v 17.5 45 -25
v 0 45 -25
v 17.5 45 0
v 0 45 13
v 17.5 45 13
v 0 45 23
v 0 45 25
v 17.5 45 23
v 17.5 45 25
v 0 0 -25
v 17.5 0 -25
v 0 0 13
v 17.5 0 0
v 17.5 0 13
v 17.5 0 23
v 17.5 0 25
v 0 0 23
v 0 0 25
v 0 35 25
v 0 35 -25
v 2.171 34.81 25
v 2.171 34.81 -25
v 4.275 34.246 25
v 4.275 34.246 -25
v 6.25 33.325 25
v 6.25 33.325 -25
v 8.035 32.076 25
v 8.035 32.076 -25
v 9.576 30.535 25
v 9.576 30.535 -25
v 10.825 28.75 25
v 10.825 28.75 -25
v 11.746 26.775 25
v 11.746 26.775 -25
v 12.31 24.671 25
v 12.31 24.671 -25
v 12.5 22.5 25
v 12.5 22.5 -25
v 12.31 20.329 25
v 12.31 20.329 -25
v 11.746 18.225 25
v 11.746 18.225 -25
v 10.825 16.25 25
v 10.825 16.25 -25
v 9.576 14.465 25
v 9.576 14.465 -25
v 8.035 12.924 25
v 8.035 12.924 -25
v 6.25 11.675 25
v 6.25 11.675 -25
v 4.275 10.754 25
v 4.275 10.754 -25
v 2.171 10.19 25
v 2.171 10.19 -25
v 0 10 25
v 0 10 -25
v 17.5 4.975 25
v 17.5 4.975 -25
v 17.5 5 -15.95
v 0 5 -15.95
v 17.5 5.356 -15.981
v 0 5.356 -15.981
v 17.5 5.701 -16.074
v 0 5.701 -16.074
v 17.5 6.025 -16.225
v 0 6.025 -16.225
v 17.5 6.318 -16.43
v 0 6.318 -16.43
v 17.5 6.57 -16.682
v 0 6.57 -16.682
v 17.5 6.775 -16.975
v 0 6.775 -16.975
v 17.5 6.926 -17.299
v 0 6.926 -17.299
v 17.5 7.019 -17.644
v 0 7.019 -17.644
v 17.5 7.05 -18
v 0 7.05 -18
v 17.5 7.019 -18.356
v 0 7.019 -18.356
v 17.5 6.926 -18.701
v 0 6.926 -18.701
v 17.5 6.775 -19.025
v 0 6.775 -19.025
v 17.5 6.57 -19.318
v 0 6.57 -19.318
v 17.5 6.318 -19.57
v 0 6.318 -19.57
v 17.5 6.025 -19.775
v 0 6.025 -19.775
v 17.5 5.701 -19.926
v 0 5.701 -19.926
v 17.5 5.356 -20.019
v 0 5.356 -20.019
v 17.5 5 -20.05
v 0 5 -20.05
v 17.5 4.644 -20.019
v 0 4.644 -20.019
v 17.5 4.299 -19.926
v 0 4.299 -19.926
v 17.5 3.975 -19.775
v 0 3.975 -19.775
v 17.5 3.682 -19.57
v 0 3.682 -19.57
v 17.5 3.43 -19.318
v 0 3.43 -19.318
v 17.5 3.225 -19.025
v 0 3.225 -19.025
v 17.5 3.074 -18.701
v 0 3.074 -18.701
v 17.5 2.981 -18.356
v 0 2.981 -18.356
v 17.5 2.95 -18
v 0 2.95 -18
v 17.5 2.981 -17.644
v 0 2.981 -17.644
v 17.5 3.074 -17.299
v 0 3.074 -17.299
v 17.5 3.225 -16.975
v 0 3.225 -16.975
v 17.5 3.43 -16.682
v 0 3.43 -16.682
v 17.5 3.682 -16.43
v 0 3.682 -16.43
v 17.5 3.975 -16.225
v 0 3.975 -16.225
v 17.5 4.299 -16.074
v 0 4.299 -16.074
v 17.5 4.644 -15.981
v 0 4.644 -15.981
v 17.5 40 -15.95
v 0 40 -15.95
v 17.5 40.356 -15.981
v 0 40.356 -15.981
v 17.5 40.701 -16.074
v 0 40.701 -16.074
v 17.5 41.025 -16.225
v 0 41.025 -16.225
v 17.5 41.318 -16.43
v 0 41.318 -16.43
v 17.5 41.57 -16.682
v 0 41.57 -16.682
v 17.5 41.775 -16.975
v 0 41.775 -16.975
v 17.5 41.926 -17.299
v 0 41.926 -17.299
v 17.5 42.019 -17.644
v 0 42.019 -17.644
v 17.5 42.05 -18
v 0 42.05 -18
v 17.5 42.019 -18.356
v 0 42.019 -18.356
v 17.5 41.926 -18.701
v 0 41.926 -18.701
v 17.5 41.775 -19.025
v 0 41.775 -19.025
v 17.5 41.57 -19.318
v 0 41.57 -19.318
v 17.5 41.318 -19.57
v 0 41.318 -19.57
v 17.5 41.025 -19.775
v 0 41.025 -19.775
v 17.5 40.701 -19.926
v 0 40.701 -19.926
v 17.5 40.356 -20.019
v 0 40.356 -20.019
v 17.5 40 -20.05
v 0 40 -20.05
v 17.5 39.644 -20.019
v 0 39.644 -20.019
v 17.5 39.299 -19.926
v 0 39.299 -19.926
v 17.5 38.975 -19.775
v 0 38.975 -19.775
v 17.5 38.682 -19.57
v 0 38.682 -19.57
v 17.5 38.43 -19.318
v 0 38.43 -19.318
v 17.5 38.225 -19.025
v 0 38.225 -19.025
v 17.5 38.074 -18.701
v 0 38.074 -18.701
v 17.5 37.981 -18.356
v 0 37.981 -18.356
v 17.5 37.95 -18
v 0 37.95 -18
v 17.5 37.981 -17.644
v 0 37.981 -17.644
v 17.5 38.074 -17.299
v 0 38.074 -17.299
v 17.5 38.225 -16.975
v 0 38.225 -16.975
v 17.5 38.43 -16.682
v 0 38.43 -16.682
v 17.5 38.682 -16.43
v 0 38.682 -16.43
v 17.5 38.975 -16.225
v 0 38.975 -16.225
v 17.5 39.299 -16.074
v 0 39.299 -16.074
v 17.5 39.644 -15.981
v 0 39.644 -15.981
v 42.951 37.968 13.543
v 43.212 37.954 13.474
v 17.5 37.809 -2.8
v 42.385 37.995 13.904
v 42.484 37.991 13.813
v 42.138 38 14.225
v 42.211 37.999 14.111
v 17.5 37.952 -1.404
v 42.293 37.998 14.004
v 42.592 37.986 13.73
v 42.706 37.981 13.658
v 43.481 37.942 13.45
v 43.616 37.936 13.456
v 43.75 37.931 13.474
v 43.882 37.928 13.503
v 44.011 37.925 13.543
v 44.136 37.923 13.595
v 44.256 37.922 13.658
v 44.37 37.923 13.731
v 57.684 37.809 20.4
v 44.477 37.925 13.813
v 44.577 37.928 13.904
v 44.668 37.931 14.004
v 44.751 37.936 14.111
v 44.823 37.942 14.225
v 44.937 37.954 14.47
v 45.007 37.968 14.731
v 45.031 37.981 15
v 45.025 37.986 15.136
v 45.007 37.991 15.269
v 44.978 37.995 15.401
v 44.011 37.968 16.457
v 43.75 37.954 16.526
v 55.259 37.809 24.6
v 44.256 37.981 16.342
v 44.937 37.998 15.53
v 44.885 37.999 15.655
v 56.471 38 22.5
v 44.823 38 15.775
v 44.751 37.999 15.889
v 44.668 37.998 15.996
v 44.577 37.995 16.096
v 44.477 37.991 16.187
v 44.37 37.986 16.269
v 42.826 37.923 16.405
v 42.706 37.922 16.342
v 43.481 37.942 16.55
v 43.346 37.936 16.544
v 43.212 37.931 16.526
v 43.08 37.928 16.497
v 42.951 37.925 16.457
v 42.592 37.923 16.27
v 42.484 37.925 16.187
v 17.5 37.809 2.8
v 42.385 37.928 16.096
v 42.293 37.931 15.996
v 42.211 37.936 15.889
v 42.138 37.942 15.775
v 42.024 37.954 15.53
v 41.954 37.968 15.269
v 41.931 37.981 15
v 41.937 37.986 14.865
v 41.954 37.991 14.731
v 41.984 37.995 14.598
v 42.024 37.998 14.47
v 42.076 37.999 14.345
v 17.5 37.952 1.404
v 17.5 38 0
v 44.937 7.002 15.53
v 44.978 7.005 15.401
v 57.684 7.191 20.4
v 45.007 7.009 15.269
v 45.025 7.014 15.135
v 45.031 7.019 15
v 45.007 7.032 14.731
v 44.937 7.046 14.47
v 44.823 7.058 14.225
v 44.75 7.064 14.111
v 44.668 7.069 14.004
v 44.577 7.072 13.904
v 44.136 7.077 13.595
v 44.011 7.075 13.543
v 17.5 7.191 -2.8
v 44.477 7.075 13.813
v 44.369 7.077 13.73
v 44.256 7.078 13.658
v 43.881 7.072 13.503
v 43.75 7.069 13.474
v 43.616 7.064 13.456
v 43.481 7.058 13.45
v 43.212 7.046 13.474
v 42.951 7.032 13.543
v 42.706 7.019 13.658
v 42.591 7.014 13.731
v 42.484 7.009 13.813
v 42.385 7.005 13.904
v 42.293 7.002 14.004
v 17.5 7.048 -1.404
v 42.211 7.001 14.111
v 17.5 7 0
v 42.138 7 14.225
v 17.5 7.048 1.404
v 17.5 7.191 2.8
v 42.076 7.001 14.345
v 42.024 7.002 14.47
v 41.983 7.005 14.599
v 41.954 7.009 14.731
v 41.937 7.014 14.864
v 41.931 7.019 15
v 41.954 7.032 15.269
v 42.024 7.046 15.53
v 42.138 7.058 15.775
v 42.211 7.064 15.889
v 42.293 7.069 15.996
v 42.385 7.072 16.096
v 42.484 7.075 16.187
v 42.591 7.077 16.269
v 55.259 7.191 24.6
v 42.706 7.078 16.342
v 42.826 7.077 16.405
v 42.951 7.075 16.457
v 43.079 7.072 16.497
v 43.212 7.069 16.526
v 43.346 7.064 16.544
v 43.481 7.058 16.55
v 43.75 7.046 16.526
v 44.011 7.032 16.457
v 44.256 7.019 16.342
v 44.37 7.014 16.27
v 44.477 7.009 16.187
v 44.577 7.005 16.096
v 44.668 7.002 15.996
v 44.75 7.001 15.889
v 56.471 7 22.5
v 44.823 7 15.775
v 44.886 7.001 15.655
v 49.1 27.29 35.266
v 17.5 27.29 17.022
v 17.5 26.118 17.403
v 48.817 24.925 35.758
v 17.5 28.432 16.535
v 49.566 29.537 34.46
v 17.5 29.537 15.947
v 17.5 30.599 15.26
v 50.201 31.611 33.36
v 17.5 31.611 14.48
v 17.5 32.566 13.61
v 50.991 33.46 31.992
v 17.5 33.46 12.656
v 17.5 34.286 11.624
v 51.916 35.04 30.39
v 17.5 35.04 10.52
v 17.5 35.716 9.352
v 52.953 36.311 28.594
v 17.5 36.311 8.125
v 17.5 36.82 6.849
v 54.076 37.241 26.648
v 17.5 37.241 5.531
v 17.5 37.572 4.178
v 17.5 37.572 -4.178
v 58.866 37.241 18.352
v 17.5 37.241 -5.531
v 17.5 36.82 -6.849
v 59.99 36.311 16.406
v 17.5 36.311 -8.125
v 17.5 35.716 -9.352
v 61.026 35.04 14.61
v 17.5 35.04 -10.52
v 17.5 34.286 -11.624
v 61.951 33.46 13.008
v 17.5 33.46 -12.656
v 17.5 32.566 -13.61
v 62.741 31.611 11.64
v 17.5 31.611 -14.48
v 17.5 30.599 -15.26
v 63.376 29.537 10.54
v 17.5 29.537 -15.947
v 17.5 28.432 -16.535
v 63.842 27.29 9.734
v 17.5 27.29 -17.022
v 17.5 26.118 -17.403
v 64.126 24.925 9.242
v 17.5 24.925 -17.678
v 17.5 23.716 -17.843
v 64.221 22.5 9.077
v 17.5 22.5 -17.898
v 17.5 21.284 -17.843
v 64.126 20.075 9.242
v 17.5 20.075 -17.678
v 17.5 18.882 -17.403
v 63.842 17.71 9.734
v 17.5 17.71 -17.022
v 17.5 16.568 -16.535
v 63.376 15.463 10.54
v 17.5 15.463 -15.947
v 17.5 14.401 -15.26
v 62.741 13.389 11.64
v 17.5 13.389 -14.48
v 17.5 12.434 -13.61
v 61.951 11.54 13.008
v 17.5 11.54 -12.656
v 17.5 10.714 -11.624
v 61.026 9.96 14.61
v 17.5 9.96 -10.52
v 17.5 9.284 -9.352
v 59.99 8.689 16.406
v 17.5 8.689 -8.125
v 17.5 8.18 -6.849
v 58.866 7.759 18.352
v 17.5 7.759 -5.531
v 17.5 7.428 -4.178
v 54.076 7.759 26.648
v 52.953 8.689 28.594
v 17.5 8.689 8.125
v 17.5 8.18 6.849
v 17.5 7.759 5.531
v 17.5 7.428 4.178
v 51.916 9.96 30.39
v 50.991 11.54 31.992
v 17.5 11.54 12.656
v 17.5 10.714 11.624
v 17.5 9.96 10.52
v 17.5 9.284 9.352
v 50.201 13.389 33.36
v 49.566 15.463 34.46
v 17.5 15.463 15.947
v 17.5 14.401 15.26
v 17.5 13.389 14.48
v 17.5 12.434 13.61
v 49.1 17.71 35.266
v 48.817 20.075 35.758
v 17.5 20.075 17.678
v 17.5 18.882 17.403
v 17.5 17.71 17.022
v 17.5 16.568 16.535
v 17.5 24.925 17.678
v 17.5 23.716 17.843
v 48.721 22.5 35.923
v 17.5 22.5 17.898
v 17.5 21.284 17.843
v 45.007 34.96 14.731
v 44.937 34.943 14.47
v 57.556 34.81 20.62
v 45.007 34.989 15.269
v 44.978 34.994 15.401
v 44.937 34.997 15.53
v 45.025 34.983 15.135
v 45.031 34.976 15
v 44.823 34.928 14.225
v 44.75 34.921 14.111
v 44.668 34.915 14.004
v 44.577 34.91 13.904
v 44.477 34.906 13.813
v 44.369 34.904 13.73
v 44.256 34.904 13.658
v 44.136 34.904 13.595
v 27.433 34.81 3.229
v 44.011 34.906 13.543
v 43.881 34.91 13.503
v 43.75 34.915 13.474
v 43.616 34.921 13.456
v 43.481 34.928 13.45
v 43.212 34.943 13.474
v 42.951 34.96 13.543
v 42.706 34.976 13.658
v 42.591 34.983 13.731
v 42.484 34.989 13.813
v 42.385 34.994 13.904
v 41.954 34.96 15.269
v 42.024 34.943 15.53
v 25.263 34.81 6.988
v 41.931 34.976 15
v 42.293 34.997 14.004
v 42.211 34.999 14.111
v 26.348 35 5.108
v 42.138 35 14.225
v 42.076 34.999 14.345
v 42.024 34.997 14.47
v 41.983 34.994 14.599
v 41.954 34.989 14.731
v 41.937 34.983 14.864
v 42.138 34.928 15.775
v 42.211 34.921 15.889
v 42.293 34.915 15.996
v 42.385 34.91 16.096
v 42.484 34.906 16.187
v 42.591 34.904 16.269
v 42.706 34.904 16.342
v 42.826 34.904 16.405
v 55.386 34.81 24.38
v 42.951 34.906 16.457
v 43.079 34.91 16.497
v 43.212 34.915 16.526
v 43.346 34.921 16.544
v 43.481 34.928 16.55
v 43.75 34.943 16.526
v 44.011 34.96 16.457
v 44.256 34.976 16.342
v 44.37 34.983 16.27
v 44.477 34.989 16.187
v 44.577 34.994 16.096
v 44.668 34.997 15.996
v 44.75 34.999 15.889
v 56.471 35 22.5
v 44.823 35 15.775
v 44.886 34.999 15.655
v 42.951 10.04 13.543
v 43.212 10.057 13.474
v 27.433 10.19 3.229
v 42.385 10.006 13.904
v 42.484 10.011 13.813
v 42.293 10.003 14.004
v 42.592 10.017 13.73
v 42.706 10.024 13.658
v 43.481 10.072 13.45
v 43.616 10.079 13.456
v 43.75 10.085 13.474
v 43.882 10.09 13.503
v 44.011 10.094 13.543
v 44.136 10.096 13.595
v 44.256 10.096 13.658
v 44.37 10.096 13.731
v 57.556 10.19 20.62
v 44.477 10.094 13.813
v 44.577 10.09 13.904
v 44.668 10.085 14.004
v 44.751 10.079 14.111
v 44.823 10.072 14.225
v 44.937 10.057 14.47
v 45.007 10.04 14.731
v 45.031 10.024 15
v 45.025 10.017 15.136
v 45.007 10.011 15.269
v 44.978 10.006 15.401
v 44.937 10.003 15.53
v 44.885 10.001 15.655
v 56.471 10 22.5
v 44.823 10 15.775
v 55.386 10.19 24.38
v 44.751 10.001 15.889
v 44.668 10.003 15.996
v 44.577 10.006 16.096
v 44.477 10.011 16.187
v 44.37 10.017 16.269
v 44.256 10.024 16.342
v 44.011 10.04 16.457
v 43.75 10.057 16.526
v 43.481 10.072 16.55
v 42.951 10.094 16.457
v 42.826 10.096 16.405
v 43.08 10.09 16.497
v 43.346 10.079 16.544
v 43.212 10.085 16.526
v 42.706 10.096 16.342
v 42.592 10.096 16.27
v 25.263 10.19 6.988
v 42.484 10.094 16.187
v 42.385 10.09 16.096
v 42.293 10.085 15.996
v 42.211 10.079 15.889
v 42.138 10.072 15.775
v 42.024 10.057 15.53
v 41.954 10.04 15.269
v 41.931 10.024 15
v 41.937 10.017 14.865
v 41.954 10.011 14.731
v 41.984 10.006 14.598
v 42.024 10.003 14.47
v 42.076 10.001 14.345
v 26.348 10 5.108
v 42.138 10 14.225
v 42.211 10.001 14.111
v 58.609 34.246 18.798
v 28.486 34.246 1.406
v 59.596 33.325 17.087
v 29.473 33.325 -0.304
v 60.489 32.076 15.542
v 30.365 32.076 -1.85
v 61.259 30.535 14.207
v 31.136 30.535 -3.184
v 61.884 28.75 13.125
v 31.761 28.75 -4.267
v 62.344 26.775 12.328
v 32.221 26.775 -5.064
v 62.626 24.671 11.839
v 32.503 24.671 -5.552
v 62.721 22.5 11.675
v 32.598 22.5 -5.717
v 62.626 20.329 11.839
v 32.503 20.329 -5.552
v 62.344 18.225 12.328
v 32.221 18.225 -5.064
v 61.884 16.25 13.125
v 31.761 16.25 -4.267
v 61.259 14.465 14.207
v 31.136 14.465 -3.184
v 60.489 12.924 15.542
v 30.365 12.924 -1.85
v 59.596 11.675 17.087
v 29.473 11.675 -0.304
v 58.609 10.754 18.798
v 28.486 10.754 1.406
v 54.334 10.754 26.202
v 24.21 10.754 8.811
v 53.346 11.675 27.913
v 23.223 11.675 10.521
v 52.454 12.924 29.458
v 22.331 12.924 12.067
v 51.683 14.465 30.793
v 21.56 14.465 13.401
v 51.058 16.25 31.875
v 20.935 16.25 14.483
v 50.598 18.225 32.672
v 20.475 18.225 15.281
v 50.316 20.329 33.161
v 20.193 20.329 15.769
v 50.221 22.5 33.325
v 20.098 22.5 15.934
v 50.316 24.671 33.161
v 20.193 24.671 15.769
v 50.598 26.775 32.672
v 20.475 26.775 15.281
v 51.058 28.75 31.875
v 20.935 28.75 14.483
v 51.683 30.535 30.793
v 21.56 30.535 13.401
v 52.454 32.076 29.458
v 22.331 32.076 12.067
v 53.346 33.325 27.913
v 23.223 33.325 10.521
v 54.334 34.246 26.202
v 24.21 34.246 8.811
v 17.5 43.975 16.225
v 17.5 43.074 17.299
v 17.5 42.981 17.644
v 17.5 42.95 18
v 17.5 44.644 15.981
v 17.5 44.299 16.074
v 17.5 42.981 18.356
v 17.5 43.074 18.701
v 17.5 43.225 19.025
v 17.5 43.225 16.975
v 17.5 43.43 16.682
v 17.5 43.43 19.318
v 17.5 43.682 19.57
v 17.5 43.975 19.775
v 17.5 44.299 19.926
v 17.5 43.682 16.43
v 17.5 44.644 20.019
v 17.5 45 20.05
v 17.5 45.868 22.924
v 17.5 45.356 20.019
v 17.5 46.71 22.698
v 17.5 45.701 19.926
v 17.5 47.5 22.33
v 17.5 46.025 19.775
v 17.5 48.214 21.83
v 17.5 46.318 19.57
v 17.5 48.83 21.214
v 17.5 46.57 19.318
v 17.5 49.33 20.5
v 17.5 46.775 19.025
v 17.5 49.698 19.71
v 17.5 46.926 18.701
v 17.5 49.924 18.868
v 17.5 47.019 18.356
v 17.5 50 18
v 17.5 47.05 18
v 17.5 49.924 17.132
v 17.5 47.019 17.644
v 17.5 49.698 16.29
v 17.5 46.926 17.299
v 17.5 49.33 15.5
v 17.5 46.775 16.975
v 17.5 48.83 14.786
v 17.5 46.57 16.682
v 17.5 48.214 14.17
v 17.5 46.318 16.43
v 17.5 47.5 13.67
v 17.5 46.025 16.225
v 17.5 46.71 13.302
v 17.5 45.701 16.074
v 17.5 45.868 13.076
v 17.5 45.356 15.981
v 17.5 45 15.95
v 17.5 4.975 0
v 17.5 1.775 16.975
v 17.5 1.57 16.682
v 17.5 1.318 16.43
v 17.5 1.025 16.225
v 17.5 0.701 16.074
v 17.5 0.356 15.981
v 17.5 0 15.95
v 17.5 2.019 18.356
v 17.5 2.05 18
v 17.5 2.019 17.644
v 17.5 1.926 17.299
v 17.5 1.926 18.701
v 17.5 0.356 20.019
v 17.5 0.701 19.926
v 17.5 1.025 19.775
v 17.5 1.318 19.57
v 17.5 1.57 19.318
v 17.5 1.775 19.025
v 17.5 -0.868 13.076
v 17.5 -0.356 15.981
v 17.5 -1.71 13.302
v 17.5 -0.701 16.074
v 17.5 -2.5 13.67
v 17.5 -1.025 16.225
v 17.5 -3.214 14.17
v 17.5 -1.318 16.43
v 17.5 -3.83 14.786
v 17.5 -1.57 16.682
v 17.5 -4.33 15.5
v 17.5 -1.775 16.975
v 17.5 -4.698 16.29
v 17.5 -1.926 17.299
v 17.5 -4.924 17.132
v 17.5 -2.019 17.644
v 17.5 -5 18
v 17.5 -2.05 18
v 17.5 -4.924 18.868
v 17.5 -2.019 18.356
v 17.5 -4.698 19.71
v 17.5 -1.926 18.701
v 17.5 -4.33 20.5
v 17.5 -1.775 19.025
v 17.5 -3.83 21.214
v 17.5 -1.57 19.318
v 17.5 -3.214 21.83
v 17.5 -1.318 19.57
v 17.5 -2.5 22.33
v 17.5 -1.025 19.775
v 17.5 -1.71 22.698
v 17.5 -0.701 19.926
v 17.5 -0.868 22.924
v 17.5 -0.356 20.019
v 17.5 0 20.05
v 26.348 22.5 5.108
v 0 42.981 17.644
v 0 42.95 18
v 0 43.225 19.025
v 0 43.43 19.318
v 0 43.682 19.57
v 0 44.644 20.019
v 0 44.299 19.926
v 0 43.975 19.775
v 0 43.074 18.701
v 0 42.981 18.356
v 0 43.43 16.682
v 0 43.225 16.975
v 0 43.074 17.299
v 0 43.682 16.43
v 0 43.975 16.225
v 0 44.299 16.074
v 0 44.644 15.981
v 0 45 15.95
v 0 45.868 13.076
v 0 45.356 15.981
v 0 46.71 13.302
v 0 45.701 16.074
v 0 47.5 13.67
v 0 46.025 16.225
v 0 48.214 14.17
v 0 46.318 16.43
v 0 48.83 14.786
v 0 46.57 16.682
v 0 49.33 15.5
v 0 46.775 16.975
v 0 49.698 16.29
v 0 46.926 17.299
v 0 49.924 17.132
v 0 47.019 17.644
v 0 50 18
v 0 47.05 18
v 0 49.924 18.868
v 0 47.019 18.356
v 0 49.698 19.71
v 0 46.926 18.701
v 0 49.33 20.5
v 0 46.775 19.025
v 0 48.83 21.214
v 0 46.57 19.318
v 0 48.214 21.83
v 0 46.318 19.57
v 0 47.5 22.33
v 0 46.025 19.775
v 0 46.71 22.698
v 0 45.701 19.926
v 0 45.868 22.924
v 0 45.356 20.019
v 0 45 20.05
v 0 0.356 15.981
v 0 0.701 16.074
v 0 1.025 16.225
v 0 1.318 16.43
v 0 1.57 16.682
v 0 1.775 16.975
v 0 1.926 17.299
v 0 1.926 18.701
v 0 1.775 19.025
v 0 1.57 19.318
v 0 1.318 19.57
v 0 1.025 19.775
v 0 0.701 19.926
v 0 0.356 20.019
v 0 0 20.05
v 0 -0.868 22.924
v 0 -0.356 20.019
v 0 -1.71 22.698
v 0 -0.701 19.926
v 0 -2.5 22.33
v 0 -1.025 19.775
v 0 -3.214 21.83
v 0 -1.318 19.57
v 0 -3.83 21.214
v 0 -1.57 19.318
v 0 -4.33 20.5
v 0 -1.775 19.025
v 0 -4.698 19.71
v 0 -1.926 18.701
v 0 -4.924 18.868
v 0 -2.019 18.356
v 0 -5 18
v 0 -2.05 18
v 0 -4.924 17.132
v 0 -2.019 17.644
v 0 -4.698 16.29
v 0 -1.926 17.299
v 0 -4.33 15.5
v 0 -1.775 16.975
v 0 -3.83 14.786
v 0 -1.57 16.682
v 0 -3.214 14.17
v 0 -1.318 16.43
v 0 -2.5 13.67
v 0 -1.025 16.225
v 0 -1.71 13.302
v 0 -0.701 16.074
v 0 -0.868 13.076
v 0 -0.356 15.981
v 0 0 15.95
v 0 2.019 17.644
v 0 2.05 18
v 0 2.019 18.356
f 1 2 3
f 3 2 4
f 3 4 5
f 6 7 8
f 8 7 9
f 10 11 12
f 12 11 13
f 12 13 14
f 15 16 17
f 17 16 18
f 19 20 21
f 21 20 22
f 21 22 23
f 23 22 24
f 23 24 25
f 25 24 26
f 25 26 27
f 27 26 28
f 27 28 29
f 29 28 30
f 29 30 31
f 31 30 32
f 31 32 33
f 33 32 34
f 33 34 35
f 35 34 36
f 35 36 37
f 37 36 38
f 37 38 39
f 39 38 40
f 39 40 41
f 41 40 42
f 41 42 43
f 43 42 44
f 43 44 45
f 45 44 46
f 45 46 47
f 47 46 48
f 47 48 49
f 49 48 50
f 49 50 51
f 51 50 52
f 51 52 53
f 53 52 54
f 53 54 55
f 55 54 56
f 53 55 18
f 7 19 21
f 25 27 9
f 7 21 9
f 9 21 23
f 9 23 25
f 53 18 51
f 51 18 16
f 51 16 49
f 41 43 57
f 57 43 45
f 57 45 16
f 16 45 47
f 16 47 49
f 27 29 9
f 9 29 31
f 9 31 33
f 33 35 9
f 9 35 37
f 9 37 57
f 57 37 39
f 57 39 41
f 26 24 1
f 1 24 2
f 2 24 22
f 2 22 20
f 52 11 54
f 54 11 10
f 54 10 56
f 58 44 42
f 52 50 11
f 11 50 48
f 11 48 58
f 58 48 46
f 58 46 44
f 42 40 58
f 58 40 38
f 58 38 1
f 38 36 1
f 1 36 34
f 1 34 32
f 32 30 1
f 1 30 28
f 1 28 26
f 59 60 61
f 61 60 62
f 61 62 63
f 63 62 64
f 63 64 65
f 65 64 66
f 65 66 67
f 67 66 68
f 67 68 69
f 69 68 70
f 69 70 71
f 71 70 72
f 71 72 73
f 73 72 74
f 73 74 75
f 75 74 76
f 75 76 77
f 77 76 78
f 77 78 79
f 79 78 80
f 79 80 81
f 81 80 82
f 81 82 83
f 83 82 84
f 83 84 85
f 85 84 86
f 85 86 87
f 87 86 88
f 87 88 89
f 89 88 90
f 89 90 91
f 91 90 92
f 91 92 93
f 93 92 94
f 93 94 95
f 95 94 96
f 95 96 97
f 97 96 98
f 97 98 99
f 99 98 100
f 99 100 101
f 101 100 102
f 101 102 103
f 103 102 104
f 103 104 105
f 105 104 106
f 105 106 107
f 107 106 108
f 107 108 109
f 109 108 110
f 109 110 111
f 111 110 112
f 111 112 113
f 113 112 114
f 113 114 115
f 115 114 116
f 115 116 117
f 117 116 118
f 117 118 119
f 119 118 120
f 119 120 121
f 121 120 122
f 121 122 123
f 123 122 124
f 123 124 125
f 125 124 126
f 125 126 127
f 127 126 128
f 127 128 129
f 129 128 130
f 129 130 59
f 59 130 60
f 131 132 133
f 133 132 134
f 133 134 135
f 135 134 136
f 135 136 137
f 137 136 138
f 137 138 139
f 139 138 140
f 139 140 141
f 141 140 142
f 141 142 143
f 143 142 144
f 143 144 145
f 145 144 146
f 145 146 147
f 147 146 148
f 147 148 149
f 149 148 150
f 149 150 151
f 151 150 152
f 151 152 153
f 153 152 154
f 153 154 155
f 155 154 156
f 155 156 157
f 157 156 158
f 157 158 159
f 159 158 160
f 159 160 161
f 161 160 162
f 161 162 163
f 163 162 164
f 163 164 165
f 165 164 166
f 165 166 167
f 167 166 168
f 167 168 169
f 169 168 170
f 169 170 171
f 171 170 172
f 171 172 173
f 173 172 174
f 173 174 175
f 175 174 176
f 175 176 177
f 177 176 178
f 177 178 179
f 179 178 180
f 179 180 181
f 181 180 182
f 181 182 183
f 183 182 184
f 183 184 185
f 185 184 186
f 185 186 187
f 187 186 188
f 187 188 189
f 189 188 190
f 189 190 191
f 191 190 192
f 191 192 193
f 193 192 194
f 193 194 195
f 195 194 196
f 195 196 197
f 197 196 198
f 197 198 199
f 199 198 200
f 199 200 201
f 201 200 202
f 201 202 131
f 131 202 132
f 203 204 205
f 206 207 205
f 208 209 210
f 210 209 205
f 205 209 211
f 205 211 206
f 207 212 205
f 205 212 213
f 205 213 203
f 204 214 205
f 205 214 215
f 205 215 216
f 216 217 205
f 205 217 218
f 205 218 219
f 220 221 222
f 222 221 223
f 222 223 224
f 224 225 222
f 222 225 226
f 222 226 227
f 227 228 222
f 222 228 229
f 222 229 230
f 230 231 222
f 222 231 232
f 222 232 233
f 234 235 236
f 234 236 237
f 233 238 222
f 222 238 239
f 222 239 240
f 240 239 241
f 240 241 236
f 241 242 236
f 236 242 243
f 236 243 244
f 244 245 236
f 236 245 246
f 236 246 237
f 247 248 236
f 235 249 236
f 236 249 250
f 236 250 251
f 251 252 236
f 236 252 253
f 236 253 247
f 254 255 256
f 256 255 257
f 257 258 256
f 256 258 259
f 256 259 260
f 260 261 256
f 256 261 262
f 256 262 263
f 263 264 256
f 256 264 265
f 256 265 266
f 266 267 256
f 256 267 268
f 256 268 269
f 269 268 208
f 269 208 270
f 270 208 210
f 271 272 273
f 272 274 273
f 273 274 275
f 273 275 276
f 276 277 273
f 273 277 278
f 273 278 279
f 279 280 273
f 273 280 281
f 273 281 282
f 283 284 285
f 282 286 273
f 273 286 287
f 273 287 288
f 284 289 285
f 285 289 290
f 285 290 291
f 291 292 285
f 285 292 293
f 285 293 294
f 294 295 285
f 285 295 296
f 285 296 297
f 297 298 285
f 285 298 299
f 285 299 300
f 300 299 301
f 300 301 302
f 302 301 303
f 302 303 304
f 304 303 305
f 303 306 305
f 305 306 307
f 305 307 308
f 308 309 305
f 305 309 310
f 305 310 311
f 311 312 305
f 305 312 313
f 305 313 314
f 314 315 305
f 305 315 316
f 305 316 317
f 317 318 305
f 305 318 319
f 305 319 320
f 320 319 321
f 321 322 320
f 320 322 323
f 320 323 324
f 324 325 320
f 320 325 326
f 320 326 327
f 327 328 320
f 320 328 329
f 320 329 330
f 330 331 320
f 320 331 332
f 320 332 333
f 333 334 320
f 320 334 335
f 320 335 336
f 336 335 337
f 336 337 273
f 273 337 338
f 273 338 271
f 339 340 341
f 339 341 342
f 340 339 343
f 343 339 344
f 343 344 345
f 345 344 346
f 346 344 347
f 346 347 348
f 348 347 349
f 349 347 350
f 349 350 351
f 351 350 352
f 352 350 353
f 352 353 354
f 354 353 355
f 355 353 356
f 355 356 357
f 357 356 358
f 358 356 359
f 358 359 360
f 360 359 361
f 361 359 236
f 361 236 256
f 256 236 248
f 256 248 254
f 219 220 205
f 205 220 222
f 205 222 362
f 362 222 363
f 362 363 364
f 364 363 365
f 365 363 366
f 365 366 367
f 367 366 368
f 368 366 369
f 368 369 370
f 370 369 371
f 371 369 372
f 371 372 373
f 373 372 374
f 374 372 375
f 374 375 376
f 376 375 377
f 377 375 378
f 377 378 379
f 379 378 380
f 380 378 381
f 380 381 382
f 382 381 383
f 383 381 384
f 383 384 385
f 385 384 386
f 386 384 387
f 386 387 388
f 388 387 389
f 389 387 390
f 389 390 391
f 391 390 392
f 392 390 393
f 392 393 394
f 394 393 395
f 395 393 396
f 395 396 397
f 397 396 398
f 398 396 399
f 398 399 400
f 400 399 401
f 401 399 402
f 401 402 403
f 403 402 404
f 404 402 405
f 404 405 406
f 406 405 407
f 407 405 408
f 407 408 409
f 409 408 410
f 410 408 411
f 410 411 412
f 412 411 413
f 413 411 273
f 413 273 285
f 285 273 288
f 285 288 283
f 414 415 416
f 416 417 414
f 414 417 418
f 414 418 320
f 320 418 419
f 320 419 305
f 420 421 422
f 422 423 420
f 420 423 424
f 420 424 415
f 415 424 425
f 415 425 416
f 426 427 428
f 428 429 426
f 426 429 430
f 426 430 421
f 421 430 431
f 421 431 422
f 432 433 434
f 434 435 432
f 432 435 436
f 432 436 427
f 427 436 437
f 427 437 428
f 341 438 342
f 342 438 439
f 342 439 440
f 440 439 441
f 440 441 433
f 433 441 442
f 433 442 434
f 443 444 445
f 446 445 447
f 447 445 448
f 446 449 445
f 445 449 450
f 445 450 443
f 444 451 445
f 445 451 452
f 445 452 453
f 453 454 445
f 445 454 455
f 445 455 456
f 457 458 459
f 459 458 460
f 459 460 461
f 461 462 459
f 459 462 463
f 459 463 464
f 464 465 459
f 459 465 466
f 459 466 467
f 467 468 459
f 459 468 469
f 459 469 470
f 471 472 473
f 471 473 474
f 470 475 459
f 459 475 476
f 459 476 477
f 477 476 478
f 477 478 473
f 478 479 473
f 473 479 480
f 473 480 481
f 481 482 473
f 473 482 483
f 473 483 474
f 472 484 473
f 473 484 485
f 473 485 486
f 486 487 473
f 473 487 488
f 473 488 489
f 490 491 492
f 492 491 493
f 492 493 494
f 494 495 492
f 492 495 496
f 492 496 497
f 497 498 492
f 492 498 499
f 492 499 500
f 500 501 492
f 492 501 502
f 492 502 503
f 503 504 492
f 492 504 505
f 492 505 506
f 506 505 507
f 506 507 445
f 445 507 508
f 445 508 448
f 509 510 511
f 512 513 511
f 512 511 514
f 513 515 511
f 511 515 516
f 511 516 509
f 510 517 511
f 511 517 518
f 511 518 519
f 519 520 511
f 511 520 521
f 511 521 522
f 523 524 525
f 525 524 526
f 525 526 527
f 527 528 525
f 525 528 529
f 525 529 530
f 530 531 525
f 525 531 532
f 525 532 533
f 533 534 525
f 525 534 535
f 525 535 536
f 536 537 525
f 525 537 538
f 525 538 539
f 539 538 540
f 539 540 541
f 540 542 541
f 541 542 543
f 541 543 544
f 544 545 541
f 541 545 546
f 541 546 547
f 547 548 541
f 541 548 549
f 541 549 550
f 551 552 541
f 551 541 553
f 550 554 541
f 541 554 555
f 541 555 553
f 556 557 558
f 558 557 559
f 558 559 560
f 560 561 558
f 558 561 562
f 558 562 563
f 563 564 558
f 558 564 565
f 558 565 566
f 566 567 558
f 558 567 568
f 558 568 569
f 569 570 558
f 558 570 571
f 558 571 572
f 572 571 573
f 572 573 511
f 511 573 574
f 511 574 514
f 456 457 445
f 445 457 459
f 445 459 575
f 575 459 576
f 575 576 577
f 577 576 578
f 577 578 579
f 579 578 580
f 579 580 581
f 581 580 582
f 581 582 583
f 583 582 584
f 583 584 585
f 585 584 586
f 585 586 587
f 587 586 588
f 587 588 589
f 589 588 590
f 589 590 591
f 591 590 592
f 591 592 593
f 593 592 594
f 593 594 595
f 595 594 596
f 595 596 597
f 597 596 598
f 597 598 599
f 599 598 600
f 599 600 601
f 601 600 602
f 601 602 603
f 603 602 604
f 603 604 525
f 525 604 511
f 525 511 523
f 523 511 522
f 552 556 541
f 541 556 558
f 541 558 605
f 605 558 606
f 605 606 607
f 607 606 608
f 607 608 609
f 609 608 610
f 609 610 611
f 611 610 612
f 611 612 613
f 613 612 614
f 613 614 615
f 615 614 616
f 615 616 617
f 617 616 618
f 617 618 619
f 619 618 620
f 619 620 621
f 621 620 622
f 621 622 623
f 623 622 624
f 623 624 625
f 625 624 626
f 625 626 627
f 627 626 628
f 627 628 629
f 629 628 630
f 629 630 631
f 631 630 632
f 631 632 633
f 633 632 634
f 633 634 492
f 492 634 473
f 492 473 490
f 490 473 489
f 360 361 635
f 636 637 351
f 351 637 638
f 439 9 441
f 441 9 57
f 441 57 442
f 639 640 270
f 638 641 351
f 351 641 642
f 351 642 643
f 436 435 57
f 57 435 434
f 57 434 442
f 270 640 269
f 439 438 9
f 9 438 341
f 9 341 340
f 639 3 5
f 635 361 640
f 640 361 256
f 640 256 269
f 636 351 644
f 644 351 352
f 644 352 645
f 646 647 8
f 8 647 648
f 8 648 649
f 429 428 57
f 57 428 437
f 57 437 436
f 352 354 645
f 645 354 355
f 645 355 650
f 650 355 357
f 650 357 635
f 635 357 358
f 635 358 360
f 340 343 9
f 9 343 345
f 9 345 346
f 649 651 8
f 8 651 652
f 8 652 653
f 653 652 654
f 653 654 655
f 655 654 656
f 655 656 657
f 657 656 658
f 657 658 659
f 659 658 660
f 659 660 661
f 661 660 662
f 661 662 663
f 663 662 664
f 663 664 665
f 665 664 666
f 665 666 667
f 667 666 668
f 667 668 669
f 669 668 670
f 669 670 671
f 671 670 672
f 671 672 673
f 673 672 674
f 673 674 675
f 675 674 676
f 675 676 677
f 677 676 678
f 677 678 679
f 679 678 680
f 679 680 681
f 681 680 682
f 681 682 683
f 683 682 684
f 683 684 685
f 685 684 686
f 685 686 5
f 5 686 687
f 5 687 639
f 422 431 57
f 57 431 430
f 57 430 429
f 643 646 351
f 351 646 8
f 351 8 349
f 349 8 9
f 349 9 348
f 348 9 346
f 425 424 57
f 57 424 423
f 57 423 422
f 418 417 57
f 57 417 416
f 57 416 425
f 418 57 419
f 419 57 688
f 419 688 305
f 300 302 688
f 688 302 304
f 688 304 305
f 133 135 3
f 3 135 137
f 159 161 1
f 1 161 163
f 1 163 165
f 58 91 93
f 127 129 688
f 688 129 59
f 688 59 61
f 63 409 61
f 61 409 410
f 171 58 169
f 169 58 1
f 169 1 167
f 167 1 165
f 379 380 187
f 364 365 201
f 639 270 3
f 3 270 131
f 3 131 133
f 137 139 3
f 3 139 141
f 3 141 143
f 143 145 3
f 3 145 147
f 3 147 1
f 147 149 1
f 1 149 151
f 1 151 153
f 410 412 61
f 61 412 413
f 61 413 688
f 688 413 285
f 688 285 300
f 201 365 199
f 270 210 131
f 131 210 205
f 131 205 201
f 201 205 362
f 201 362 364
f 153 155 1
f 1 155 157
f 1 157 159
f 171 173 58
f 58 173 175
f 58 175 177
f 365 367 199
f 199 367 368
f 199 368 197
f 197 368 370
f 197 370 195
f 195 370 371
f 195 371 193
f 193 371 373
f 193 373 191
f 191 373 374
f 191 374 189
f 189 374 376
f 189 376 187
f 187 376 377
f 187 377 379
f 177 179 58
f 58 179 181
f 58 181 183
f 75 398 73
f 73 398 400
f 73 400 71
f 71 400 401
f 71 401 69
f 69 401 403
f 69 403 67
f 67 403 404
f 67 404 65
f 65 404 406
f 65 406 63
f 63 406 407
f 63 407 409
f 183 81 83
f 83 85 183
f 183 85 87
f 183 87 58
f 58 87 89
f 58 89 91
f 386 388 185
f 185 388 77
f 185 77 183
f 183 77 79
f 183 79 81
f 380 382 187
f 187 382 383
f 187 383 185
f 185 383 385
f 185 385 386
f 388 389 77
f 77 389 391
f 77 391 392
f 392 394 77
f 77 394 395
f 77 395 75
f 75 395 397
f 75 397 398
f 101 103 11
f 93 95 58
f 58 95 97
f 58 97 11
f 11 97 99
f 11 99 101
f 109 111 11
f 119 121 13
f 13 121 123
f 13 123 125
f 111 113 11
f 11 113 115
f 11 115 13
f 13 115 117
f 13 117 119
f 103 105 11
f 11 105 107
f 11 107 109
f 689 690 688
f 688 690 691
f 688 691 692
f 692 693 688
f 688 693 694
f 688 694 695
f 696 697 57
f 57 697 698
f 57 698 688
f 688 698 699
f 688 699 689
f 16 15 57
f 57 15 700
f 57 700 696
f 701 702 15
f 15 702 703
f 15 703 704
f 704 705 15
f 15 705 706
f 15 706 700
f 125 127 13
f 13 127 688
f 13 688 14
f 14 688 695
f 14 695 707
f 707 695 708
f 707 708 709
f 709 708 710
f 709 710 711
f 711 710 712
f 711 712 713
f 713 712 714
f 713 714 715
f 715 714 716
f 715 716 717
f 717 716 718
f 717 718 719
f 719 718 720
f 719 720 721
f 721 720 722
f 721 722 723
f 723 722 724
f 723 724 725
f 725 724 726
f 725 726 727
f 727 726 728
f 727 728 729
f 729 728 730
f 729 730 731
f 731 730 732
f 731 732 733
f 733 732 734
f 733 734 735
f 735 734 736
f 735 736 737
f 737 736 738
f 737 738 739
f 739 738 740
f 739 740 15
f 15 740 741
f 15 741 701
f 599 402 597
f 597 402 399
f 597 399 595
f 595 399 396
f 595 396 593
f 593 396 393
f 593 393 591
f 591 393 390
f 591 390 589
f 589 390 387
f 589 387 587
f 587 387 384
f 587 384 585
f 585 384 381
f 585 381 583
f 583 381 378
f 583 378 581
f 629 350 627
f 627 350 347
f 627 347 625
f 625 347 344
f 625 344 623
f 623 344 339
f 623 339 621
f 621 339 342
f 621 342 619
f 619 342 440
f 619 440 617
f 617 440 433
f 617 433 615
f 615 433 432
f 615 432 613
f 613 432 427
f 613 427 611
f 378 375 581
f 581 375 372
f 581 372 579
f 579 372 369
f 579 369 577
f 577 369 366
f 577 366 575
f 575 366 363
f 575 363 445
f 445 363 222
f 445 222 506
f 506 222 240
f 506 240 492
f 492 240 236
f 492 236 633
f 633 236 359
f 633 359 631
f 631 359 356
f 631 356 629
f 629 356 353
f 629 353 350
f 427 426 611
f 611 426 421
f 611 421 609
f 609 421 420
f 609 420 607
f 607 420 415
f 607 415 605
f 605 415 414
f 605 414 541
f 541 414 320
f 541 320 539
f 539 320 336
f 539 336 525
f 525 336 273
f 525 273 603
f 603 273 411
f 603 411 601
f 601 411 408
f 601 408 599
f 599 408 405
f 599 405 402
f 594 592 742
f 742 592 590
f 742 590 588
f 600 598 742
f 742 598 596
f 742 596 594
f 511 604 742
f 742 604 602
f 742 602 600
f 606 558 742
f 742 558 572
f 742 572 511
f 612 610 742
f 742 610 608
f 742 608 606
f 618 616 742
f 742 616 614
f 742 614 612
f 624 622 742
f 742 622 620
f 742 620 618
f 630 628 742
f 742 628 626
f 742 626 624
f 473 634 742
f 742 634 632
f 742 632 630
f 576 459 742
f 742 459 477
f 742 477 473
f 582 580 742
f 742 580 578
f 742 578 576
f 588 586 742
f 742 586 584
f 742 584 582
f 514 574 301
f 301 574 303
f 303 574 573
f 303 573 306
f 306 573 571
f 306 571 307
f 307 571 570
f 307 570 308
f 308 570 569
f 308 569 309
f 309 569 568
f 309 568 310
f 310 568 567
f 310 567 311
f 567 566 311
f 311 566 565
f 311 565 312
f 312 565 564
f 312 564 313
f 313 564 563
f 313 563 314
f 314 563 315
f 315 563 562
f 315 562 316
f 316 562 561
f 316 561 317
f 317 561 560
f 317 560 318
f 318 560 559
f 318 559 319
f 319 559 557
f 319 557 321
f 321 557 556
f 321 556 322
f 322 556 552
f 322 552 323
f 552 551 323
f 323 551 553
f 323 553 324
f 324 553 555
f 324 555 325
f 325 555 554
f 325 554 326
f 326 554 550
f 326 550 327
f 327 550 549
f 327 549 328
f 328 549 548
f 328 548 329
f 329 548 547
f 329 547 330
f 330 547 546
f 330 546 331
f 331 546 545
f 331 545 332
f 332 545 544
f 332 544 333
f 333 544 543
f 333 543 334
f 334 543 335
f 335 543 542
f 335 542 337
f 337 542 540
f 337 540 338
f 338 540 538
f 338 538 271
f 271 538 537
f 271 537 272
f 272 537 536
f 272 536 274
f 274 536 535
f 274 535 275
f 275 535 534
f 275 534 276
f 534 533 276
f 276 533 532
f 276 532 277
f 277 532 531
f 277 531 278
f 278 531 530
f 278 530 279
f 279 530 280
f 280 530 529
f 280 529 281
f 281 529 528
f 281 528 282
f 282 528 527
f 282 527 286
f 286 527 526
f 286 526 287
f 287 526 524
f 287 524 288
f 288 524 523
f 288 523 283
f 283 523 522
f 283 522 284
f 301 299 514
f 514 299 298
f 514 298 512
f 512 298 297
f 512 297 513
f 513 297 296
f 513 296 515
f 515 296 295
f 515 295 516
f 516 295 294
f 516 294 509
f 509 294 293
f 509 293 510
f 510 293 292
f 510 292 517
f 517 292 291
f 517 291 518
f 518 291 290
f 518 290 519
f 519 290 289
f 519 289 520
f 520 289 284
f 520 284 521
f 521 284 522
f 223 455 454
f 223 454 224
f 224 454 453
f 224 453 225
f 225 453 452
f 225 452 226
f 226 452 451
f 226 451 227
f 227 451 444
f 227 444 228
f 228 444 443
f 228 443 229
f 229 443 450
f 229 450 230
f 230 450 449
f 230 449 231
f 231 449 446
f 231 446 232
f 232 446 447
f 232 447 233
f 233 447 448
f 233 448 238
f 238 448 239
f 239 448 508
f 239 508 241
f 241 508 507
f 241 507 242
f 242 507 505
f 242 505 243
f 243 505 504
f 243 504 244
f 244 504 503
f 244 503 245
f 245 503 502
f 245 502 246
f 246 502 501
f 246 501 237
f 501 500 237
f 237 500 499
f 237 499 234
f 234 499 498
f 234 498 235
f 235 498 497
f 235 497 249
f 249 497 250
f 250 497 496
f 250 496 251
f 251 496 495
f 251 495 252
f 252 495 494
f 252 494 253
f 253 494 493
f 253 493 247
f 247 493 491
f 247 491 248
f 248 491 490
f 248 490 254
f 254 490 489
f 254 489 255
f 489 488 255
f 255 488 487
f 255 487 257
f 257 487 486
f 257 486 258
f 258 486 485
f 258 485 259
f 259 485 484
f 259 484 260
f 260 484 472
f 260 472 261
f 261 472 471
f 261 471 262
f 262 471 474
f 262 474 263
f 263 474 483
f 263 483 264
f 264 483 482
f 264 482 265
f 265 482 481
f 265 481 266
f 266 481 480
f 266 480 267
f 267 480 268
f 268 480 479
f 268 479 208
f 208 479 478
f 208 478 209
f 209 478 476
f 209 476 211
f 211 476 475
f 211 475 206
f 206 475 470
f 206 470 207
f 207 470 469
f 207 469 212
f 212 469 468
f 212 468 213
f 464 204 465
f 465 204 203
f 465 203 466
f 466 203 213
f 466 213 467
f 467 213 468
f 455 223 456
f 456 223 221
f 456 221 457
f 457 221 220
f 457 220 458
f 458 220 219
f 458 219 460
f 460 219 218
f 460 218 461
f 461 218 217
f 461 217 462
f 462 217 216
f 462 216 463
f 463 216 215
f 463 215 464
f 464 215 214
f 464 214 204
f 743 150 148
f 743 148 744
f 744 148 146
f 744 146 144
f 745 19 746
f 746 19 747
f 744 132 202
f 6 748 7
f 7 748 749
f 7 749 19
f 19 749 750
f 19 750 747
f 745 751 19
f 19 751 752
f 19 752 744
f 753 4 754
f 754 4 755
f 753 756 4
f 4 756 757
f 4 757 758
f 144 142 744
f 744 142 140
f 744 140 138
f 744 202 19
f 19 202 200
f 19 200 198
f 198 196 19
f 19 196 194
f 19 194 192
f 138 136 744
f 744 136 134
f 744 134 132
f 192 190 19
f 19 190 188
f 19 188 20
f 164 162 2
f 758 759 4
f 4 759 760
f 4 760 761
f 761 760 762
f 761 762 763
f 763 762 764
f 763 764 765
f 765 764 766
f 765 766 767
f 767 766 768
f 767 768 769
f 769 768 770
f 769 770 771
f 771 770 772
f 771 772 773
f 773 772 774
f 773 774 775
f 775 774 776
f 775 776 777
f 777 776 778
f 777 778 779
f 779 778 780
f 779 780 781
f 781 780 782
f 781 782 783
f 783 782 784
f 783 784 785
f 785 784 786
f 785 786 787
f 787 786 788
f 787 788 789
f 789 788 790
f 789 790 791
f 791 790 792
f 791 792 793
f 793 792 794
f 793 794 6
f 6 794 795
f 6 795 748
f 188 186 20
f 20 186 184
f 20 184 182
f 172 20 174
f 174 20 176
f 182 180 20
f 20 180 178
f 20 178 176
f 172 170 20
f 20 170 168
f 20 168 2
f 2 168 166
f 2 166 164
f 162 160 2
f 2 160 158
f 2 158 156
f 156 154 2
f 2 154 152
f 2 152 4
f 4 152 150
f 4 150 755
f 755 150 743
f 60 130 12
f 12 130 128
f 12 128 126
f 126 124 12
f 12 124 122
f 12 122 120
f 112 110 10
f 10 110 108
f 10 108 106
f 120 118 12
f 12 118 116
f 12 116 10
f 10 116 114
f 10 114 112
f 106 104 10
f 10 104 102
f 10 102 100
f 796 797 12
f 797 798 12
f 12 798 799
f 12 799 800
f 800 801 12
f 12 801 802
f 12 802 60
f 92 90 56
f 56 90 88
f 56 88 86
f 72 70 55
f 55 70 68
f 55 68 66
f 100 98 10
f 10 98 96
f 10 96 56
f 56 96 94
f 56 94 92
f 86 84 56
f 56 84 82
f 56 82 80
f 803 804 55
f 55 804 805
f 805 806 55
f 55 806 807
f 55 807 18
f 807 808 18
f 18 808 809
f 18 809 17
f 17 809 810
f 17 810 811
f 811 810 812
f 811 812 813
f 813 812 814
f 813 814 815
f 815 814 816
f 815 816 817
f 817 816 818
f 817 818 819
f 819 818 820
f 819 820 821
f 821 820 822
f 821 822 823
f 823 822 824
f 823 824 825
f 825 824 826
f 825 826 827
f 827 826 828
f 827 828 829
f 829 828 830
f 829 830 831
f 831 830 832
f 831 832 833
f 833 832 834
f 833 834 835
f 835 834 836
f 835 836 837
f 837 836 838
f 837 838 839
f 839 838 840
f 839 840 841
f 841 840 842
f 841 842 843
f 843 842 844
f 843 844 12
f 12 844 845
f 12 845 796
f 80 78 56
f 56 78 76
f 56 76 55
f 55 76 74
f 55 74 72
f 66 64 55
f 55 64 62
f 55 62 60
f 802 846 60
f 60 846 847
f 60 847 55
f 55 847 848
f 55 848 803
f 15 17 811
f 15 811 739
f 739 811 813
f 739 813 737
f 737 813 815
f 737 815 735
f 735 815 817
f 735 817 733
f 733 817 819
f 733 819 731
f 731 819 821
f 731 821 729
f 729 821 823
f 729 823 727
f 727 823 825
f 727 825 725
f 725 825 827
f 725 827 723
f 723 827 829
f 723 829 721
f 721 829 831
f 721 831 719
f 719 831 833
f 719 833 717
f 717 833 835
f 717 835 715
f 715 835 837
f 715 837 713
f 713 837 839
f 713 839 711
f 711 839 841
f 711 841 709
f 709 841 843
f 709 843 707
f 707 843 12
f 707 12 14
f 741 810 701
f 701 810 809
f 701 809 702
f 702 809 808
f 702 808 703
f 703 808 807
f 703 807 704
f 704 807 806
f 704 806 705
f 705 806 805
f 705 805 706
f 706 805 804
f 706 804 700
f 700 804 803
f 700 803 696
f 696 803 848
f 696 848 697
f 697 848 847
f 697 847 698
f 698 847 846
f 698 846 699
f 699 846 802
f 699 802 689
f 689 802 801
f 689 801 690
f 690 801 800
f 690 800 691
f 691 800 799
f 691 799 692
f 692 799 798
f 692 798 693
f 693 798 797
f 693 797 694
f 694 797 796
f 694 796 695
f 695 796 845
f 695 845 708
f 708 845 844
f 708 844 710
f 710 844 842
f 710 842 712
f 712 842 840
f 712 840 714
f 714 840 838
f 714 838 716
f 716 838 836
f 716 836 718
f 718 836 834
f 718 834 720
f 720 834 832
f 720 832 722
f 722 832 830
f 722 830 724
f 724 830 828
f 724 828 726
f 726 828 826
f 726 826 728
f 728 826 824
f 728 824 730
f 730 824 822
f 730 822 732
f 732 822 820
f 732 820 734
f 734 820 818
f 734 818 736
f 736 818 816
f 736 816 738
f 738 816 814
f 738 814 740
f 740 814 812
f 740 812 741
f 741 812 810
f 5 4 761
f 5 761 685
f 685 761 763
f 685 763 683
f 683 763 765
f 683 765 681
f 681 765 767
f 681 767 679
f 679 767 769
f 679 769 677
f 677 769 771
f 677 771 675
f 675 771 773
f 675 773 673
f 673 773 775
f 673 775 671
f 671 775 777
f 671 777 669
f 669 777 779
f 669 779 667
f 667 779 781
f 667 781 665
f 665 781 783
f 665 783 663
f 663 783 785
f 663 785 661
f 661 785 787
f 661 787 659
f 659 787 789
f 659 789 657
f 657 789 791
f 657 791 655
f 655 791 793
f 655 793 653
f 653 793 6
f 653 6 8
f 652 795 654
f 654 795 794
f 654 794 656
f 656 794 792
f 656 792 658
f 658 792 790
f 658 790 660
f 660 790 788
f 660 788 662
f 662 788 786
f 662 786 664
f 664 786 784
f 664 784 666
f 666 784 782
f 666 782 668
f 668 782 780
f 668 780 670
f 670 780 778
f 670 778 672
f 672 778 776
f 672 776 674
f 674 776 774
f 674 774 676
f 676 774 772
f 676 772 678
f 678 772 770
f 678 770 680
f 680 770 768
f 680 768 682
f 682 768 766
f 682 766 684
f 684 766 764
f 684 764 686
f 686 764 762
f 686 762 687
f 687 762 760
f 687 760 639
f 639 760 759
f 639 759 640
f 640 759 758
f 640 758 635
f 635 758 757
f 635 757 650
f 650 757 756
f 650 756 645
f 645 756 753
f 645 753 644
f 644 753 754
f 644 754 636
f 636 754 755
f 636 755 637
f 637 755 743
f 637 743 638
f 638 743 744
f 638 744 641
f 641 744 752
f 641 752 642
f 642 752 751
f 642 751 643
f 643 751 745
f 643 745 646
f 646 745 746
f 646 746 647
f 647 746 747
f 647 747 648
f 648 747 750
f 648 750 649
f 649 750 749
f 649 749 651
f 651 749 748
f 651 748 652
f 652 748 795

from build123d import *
from build123d.topology import SkipClean

# Parameters (mm, degrees)
BOSS_EXTRUDE1_DEPTH             = 25
BOSS_EXTRUDE2_REACH             = 65.362
BOSS_EXTRUDE2_DIRECTION_2_DEPTH = 30
SKETCH9_R                       = 2.05
CUT_EXTRUDE3_DEPTH              = 35
BOSS_EXTRUDE5_REACH             = 62.904
SKETCH13_R                      = 1.55
CUT_EXTRUDE4_DEPTH              = 87.217897417
SKETCH16_W                      = 50
SKETCH16_H                      = 45
CUT_EXTRUDE5_DEPTH              = 17.5
BOSS_EXTRUDE6_DEPTH             = 17.5
SKETCH20_R                      = 2.05
CUT_EXTRUDE6_DEPTH              = 17.5


with BuildPart() as part:
    # Sketch1 → Boss-Extrude1 (new, symmetric)
    with BuildSketch(Plane.XY):
        with BuildLine():
            Line((-17.5, 22.5), (-17.5, 0))
            Line((-17.5, 0), (17.5, 0))
            Line((17.5, 0), (17.5, 22.5))
            Line((17.5, 22.5), (12.5, 22.5))
            ThreePointArc((12.5, 22.5), (0, 10), (-12.5, 22.5))
            Line((-12.5, 22.5), (-17.5, 22.5))
        make_face()
    boss_extrude1 = extrude(amount=BOSS_EXTRUDE1_DEPTH, both=True)

    # Boss-Extrude2: up to this face of the body (flat: up to its plane)
    boss_extrude2_end = Plane(part.part.faces().sort_by_distance((17.5, 11.25, 0))[0])
    # Sketch5 → Boss-Extrude2 (add, up to the picked face)
    with BuildSketch(Plane(origin=(26.115381057, 0, 15.077722283), x_dir=(0.500000000000001, 0, -0.8660254037844382), z_dir=(0.8660254037844382, 0, 0.500000000000001)), mode=Mode.PRIVATE) as boss_extrude2_sk1:
        with BuildLine():
            Line((-6.7, 22.5), (-3.75, 22.5))
            ThreePointArc((-3.75, 22.5), (8.75, 10), (21.25, 22.5))
            Line((21.25, 22.5), (24.2, 22.5))
            ThreePointArc((24.2, 22.5), (8.75, 7.05), (-6.7, 22.5))
        make_face()
    boss_extrude2_tool1 = split(extrude(boss_extrude2_sk1.sketch, amount=-BOSS_EXTRUDE2_REACH, mode=Mode.PRIVATE), bisect_by=boss_extrude2_end, keep=Keep.BOTH, mode=Mode.PRIVATE)
    boss_extrude2 = boss_extrude2_tool1.solids().sort_by(Axis((23.502881, 22.154527, 19.602705), (-0.8660254037844382, 0, -0.500000000000001)))[0]
    add(boss_extrude2)

    # Sketch5 → Boss-Extrude2 direction 2 (add)
    with BuildSketch(Plane(origin=(26.115381057, 0, 15.077722283), x_dir=(0.500000000000001, 0, -0.8660254037844382), z_dir=(0.8660254037844382, 0, 0.500000000000001))):
        with BuildLine():
            Line((-6.7, 22.5), (-3.75, 22.5))
            ThreePointArc((-3.75, 22.5), (8.75, 10), (21.25, 22.5))
            Line((21.25, 22.5), (24.2, 22.5))
            ThreePointArc((24.2, 22.5), (8.75, 7.05), (-6.7, 22.5))
        make_face()
    boss_extrude2_direction_2 = extrude(amount=BOSS_EXTRUDE2_DIRECTION_2_DEPTH)

    # Sketch9 → Cut-Extrude3 (cut)
    with BuildSketch(Plane.ZY.offset(17.5)):
        with Locations((-18, 5)):
            Circle(SKETCH9_R)
    cut_extrude3 = extrude(amount=-CUT_EXTRUDE3_DEPTH, mode=Mode.SUBTRACT)

    # Boss-Extrude5: up to this face of the body (flat: up to its plane)
    boss_extrude5_end = Plane(part.part.faces().sort_by_distance((17.5, 17.19483523, 0))[0])
    # Sketch12 → Boss-Extrude5 (add, up to the picked face)
    with BuildSketch(Plane(origin=(21.973076211, 0, 12.686161466), x_dir=(0.4999999999999999, 0, -0.8660254037844388), z_dir=(0.8660254037844388, 0, 0.4999999999999999)), mode=Mode.PRIVATE) as boss_extrude5_sk1:
        with BuildLine():
            Line((-3.75, 22.5), (21.25, 22.5))
            ThreePointArc((21.25, 22.5), (8.75, 10), (-3.75, 22.5))
        make_face()
    boss_extrude5_tool1 = split(extrude(boss_extrude5_sk1.sketch, amount=-BOSS_EXTRUDE5_REACH, mode=Mode.PRIVATE), bisect_by=boss_extrude5_end, keep=Keep.BOTH, mode=Mode.PRIVATE)
    boss_extrude5 = boss_extrude5_tool1.solids().sort_by(Axis((26.348076, 17.194835, 5.108439), (-0.8660254037844388, 0, -0.4999999999999999)))[0]
    add(boss_extrude5)

    # Mirror1: Boss-Extrude1, Boss-Extrude2, Boss-Extrude2 direction 2, Cut-Extrude3, Boss-Extrude5 across plane
    with SkipClean():  # the faces are left unmerged after this step: merging them gives an invalid solid
        add(boss_extrude1.mirror(Plane(origin=(17.5, 22.5, 25), x_dir=(0, 0, 1), z_dir=(0, -1, 0))))
        add(boss_extrude2.mirror(Plane(origin=(17.5, 22.5, 25), x_dir=(0, 0, 1), z_dir=(0, -1, 0))))
        add(boss_extrude2_direction_2.mirror(Plane(origin=(17.5, 22.5, 25), x_dir=(0, 0, 1), z_dir=(0, -1, 0))))
        add(cut_extrude3.mirror(Plane(origin=(17.5, 22.5, 25), x_dir=(0, 0, 1), z_dir=(0, -1, 0))), mode=Mode.SUBTRACT)
        add(boss_extrude5.mirror(Plane(origin=(17.5, 22.5, 25), x_dir=(0, 0, 1), z_dir=(0, -1, 0))))

    # Sketch13 → Cut-Extrude4 (cut, through all)
    with SkipClean():  # the faces are left unmerged after this step: merging them gives an invalid solid
        with BuildSketch(Plane(origin=(0, 0, 0), x_dir=(1, 0, 0), z_dir=(0, 1, 0))):
            with Locations(Location((43.480762114, -15, 0), (0, 0, 90))):
                Circle(SKETCH13_R)
        extrude(amount=CUT_EXTRUDE4_DEPTH, mode=Mode.SUBTRACT)

    # Sketch16 → Cut-Extrude5 (cut)
    with SkipClean():  # the faces are left unmerged after this step: merging them gives an invalid solid
        with BuildSketch(Plane(origin=(0, 0, 0), x_dir=(0, 0, -1), z_dir=(1, 0, 0))):
            with Locations((0, 22.5)):
                Rectangle(SKETCH16_W, SKETCH16_H)
        extrude(amount=-CUT_EXTRUDE5_DEPTH, mode=Mode.SUBTRACT)
    add(part.part.scale(1), mode=Mode.REPLACE)  # the faces are merged on a copy

    # Sketch18 → Boss-Extrude6 (add)
    with BuildSketch(Plane.ZY):
        with BuildLine():
            Line((13, 0), (23, 0))
            ThreePointArc((23, 0), (18, -5), (13, 0))
        make_face()
    boss_extrude6 = extrude(amount=-BOSS_EXTRUDE6_DEPTH)

    # Sketch20 → Cut-Extrude6 (cut)
    with BuildSketch(Plane.ZY):
        with Locations((18, 0)):
            Circle(SKETCH20_R)
    cut_extrude6 = extrude(amount=-CUT_EXTRUDE6_DEPTH, mode=Mode.SUBTRACT)

    # Mirror2: Boss-Extrude6, Cut-Extrude6 across plane
    add(boss_extrude6.mirror(Plane.ZX.offset(22.5)))
    add(cut_extrude6.mirror(Plane.ZX.offset(22.5)), mode=Mode.SUBTRACT)


solid = part.part
